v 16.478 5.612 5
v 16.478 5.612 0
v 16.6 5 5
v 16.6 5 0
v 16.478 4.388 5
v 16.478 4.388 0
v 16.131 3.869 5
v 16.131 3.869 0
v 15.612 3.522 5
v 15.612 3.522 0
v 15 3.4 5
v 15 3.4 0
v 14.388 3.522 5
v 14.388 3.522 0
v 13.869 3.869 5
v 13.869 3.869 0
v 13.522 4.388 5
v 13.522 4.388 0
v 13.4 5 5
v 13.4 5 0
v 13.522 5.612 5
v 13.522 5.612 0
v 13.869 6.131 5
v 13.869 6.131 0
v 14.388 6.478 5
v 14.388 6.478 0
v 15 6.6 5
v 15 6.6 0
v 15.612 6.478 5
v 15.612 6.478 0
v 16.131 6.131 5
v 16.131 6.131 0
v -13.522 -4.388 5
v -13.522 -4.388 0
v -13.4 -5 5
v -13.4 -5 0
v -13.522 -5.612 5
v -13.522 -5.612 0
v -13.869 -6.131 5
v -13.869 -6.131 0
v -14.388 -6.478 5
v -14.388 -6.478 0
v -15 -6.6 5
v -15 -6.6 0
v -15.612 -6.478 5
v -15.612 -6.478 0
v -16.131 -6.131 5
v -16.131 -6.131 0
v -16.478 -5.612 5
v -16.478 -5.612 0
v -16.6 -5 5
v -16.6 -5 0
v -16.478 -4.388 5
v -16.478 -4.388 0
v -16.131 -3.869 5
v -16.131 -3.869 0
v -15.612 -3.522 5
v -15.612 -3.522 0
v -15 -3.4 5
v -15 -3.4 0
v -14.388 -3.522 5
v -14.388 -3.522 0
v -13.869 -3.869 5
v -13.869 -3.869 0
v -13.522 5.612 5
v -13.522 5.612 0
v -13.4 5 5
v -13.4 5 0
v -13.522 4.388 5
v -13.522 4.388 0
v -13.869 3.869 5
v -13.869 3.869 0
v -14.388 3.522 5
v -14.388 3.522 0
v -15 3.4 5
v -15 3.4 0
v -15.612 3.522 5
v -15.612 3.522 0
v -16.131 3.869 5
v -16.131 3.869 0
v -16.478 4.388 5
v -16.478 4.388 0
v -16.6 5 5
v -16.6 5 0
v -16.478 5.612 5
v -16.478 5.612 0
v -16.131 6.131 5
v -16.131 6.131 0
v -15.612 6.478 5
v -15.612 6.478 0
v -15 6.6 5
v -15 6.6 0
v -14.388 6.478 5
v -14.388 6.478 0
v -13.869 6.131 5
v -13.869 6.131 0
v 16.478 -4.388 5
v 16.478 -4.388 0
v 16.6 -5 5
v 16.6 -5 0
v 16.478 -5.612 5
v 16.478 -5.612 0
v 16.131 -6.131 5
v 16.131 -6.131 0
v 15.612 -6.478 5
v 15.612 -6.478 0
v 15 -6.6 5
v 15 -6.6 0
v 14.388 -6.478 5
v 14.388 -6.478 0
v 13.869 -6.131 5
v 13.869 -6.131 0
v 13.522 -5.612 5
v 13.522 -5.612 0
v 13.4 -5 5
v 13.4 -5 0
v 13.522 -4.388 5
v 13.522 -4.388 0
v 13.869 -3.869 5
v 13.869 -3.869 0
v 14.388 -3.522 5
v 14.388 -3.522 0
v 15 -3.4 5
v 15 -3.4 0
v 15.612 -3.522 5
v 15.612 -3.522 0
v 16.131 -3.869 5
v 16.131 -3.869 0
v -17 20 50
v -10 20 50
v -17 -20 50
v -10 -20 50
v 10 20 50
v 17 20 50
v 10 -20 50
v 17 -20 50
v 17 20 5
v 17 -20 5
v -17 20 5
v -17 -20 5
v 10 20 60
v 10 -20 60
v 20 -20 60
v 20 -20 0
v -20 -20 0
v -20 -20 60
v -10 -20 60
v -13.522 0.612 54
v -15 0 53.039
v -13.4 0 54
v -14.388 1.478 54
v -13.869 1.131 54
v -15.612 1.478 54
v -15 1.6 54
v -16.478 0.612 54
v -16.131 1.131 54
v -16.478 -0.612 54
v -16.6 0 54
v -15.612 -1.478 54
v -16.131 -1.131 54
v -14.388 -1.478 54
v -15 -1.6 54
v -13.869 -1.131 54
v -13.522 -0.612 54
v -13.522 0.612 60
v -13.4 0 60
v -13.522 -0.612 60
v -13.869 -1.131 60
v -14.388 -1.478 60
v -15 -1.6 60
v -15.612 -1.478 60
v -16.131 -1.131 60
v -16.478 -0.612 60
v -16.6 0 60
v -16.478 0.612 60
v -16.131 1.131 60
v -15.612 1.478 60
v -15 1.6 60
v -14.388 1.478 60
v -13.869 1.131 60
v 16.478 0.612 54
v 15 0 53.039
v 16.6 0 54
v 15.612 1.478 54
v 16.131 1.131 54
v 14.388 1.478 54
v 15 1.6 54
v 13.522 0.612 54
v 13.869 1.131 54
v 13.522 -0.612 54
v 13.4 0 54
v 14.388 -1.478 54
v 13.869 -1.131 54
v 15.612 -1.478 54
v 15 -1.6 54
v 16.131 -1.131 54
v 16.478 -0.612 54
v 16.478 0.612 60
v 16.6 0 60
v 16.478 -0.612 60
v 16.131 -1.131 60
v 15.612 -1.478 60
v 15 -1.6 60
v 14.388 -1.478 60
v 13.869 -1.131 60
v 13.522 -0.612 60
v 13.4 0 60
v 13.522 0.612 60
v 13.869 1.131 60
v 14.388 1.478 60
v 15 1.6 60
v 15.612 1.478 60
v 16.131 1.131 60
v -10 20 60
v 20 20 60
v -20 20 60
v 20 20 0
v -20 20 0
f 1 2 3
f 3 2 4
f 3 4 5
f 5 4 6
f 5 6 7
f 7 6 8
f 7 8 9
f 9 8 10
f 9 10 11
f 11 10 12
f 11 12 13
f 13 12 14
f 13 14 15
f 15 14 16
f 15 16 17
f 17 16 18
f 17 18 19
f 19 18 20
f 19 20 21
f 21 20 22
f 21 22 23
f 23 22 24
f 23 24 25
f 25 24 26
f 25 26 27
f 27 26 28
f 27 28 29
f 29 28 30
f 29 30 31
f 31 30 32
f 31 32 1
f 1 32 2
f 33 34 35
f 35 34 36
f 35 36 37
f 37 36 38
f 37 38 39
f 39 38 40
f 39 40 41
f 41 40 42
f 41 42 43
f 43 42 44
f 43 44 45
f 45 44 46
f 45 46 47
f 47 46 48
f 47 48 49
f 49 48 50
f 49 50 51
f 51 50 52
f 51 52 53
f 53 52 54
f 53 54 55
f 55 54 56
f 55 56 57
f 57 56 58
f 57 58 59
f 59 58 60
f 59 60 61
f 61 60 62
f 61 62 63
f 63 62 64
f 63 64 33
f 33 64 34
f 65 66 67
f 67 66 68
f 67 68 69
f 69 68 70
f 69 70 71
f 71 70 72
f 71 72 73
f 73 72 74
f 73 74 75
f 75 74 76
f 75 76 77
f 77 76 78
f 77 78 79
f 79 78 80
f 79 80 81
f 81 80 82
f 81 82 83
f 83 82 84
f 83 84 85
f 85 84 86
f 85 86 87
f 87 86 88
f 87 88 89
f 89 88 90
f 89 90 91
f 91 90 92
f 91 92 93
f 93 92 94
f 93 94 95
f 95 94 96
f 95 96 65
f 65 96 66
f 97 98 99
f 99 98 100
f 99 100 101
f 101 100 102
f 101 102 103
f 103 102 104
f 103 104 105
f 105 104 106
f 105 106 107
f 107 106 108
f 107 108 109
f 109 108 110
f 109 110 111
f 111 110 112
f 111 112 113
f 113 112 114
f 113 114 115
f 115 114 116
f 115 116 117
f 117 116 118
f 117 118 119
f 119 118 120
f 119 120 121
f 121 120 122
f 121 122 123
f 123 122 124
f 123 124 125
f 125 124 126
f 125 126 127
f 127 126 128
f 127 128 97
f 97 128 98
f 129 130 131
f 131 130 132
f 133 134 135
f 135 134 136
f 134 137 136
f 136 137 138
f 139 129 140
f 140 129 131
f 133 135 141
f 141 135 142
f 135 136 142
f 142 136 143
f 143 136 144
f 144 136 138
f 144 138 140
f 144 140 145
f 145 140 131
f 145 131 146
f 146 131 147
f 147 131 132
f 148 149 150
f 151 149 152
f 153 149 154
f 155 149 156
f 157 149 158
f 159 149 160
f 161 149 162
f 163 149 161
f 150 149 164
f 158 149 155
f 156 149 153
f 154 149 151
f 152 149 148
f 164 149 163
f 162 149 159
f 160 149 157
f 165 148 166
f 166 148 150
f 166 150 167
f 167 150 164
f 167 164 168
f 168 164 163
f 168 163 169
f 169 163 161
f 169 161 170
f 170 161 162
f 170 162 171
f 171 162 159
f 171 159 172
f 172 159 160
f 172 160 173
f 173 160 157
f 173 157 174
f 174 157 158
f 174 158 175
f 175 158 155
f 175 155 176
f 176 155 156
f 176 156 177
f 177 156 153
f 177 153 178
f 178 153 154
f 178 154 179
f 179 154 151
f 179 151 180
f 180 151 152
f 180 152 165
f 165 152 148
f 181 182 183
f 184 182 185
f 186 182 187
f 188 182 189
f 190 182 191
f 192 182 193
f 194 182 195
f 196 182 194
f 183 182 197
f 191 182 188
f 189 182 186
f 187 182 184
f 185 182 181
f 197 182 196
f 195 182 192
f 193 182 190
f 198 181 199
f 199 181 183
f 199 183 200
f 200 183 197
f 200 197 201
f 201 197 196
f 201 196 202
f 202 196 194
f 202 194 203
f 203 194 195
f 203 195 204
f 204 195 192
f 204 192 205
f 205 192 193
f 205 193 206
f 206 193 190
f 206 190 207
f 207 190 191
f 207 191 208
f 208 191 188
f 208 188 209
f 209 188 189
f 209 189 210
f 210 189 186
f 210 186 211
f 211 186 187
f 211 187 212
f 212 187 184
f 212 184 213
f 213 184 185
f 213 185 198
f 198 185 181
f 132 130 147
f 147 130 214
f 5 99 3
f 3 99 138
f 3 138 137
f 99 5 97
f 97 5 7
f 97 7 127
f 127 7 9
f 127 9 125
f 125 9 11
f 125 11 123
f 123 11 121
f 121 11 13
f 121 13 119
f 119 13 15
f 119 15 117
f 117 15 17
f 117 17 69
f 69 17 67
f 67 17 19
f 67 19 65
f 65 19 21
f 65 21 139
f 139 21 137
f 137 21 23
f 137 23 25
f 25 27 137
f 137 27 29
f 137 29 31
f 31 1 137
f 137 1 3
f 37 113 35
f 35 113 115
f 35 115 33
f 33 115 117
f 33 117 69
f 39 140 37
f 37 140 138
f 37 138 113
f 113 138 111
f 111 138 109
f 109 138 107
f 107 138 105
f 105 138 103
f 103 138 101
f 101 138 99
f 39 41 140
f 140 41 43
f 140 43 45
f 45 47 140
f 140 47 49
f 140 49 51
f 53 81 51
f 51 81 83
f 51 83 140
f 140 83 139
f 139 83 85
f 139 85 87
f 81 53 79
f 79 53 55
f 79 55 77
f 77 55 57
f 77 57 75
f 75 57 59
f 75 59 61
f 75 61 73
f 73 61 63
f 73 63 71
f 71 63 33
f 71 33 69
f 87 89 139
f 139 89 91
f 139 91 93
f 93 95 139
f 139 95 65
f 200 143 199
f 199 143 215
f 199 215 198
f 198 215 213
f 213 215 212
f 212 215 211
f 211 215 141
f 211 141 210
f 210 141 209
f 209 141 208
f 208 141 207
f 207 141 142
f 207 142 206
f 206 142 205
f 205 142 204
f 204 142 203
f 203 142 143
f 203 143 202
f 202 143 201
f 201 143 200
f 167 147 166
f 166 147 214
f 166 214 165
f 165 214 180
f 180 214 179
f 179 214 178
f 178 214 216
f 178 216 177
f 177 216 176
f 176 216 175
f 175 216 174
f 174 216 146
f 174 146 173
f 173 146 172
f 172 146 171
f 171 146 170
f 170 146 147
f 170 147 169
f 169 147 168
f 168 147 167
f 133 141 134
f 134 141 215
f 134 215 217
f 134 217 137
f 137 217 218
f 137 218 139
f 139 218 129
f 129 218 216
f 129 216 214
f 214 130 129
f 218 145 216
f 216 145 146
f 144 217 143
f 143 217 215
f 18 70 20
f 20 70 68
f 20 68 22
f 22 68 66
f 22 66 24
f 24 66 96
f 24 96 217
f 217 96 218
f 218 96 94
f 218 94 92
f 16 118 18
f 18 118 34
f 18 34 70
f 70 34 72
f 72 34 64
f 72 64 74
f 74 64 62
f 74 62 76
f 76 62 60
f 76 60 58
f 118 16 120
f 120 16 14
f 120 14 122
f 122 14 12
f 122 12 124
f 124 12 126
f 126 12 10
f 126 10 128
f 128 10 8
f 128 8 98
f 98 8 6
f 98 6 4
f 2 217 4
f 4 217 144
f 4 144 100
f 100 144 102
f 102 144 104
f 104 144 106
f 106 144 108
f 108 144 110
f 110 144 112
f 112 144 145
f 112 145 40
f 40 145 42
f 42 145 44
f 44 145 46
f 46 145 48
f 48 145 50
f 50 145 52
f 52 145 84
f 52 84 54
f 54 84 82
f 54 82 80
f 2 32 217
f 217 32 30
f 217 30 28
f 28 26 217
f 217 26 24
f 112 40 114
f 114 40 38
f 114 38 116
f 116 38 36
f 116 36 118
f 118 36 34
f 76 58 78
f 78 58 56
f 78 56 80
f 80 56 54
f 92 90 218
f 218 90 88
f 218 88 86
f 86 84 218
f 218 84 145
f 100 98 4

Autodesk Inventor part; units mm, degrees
ref_plane "YZ Plane" through (0, 0, 0) normal (1, 0, 0) x (0, 1, 0)
ref_plane "XZ Plane" through (0, 0, 0) normal (0, 1, 0) x (-1, 0, 0)
ref_plane "XY Plane" through (0, 0, 0) normal (0, 0, 1) x (1, 0, 0)
sketch "スケッチ1" plane through (0, 0, 0) normal (0, 0, 1) x (1, 0, 0)
  line L0 (-20, -20) -> (20, -20)
  line L1 (20, -20) -> (20, 20)
  line L2 (20, 20) -> (-20, 20)
  line L3 (-20, 20) -> (-20, -20)
  line L4 (-20, -20) -> (20, 20) construction
  line L5 (20, -20) -> (-20, 20) construction
  point P0 (0, 0)
  dimension "d0" = 40
  dimension "d1" = 40
extrude "押し出し1" add sketch "スケッチ1" along normal blind 60
sketch "スケッチ2" plane through (0, 0, 60) normal (0, 0, 1) x (1, 0, 0)
  line L0 (20, 20) -> (-20, 20) projected
  line L1 (10, -20) -> (-10, -20)
  line L2 (-10, -20) -> (-10, 20)
  line L3 (-10, 20) -> (10, 20)
  line L4 (10, 20) -> (10, -20)
  line L5 (10, -20) -> (-10, 20) construction
  line L6 (-10, -20) -> (10, 20) construction
  point P0 (0, 0)
  dimension "d4" = 20
extrude "押し出し2" cut sketch "スケッチ2" against normal blind 55
sketch "スケッチ4" plane through (0, 0, 60) normal (0, 0, 1) x (1, 0, 0)
  point P0 (0, 0)
  point P1 (-15, 0)
  point P2 (15, 0)
  dimension "d7" = 15
  dimension "d8" = 15
hole "穴1" at (-15, 0, 60) at (15, 0, 60) direction (0, 0, -1) diameter 3.2 depth 6 tip angle 118
sketch "スケッチ5" plane through (-20, -20, 0) normal (0, -1, 0) x (1, 0, 0)
  line L0 (0, 60) -> (10, 60) projected
  line L1 (30, 60) -> (40, 60) projected
  line L2 (3, 50) -> (37, 50)
  line L3 (3, 50) -> (3, 5)
  line L4 (3, 5) -> (37, 5)
  line L5 (37, 5) -> (37, 50)
  line L6 (0, 0) -> (0, 60) projected
  line L7 (40, 0) -> (40, 60) projected
  point P0 (20, 0)
  dimension "d16" = 10
  dimension "d17" = 10
  dimension "d20" = 3
  dimension "d21" = 3
extrude "押し出し3" cut sketch "スケッチ5" against normal blind 55
sketch "スケッチ7" plane through (0, 0, 0) normal (0, 0, -1) x (-1, 0, 0)
  point P0 (0, 0)
  point P1 (15, -5)
  point P2 (15, 5)
  point P3 (-15, 5)
  point P4 (-15, -5)
  dimension "d37" = 15
  dimension "d38" = 5
  dimension "d39" = 5
  dimension "d40" = 15
  dimension "d41" = 5
  dimension "d42" = 15
  dimension "d43" = 5
  dimension "d44" = 15
hole "穴3" at (-15, -5, 0) at (-15, 5, 0) at (15, 5, 0) at (15, -5, 0) direction (0, 0, 1) diameter 3.2 depth 8.8 tip angle 118
properties part number "20220703_Fan Fixed"
